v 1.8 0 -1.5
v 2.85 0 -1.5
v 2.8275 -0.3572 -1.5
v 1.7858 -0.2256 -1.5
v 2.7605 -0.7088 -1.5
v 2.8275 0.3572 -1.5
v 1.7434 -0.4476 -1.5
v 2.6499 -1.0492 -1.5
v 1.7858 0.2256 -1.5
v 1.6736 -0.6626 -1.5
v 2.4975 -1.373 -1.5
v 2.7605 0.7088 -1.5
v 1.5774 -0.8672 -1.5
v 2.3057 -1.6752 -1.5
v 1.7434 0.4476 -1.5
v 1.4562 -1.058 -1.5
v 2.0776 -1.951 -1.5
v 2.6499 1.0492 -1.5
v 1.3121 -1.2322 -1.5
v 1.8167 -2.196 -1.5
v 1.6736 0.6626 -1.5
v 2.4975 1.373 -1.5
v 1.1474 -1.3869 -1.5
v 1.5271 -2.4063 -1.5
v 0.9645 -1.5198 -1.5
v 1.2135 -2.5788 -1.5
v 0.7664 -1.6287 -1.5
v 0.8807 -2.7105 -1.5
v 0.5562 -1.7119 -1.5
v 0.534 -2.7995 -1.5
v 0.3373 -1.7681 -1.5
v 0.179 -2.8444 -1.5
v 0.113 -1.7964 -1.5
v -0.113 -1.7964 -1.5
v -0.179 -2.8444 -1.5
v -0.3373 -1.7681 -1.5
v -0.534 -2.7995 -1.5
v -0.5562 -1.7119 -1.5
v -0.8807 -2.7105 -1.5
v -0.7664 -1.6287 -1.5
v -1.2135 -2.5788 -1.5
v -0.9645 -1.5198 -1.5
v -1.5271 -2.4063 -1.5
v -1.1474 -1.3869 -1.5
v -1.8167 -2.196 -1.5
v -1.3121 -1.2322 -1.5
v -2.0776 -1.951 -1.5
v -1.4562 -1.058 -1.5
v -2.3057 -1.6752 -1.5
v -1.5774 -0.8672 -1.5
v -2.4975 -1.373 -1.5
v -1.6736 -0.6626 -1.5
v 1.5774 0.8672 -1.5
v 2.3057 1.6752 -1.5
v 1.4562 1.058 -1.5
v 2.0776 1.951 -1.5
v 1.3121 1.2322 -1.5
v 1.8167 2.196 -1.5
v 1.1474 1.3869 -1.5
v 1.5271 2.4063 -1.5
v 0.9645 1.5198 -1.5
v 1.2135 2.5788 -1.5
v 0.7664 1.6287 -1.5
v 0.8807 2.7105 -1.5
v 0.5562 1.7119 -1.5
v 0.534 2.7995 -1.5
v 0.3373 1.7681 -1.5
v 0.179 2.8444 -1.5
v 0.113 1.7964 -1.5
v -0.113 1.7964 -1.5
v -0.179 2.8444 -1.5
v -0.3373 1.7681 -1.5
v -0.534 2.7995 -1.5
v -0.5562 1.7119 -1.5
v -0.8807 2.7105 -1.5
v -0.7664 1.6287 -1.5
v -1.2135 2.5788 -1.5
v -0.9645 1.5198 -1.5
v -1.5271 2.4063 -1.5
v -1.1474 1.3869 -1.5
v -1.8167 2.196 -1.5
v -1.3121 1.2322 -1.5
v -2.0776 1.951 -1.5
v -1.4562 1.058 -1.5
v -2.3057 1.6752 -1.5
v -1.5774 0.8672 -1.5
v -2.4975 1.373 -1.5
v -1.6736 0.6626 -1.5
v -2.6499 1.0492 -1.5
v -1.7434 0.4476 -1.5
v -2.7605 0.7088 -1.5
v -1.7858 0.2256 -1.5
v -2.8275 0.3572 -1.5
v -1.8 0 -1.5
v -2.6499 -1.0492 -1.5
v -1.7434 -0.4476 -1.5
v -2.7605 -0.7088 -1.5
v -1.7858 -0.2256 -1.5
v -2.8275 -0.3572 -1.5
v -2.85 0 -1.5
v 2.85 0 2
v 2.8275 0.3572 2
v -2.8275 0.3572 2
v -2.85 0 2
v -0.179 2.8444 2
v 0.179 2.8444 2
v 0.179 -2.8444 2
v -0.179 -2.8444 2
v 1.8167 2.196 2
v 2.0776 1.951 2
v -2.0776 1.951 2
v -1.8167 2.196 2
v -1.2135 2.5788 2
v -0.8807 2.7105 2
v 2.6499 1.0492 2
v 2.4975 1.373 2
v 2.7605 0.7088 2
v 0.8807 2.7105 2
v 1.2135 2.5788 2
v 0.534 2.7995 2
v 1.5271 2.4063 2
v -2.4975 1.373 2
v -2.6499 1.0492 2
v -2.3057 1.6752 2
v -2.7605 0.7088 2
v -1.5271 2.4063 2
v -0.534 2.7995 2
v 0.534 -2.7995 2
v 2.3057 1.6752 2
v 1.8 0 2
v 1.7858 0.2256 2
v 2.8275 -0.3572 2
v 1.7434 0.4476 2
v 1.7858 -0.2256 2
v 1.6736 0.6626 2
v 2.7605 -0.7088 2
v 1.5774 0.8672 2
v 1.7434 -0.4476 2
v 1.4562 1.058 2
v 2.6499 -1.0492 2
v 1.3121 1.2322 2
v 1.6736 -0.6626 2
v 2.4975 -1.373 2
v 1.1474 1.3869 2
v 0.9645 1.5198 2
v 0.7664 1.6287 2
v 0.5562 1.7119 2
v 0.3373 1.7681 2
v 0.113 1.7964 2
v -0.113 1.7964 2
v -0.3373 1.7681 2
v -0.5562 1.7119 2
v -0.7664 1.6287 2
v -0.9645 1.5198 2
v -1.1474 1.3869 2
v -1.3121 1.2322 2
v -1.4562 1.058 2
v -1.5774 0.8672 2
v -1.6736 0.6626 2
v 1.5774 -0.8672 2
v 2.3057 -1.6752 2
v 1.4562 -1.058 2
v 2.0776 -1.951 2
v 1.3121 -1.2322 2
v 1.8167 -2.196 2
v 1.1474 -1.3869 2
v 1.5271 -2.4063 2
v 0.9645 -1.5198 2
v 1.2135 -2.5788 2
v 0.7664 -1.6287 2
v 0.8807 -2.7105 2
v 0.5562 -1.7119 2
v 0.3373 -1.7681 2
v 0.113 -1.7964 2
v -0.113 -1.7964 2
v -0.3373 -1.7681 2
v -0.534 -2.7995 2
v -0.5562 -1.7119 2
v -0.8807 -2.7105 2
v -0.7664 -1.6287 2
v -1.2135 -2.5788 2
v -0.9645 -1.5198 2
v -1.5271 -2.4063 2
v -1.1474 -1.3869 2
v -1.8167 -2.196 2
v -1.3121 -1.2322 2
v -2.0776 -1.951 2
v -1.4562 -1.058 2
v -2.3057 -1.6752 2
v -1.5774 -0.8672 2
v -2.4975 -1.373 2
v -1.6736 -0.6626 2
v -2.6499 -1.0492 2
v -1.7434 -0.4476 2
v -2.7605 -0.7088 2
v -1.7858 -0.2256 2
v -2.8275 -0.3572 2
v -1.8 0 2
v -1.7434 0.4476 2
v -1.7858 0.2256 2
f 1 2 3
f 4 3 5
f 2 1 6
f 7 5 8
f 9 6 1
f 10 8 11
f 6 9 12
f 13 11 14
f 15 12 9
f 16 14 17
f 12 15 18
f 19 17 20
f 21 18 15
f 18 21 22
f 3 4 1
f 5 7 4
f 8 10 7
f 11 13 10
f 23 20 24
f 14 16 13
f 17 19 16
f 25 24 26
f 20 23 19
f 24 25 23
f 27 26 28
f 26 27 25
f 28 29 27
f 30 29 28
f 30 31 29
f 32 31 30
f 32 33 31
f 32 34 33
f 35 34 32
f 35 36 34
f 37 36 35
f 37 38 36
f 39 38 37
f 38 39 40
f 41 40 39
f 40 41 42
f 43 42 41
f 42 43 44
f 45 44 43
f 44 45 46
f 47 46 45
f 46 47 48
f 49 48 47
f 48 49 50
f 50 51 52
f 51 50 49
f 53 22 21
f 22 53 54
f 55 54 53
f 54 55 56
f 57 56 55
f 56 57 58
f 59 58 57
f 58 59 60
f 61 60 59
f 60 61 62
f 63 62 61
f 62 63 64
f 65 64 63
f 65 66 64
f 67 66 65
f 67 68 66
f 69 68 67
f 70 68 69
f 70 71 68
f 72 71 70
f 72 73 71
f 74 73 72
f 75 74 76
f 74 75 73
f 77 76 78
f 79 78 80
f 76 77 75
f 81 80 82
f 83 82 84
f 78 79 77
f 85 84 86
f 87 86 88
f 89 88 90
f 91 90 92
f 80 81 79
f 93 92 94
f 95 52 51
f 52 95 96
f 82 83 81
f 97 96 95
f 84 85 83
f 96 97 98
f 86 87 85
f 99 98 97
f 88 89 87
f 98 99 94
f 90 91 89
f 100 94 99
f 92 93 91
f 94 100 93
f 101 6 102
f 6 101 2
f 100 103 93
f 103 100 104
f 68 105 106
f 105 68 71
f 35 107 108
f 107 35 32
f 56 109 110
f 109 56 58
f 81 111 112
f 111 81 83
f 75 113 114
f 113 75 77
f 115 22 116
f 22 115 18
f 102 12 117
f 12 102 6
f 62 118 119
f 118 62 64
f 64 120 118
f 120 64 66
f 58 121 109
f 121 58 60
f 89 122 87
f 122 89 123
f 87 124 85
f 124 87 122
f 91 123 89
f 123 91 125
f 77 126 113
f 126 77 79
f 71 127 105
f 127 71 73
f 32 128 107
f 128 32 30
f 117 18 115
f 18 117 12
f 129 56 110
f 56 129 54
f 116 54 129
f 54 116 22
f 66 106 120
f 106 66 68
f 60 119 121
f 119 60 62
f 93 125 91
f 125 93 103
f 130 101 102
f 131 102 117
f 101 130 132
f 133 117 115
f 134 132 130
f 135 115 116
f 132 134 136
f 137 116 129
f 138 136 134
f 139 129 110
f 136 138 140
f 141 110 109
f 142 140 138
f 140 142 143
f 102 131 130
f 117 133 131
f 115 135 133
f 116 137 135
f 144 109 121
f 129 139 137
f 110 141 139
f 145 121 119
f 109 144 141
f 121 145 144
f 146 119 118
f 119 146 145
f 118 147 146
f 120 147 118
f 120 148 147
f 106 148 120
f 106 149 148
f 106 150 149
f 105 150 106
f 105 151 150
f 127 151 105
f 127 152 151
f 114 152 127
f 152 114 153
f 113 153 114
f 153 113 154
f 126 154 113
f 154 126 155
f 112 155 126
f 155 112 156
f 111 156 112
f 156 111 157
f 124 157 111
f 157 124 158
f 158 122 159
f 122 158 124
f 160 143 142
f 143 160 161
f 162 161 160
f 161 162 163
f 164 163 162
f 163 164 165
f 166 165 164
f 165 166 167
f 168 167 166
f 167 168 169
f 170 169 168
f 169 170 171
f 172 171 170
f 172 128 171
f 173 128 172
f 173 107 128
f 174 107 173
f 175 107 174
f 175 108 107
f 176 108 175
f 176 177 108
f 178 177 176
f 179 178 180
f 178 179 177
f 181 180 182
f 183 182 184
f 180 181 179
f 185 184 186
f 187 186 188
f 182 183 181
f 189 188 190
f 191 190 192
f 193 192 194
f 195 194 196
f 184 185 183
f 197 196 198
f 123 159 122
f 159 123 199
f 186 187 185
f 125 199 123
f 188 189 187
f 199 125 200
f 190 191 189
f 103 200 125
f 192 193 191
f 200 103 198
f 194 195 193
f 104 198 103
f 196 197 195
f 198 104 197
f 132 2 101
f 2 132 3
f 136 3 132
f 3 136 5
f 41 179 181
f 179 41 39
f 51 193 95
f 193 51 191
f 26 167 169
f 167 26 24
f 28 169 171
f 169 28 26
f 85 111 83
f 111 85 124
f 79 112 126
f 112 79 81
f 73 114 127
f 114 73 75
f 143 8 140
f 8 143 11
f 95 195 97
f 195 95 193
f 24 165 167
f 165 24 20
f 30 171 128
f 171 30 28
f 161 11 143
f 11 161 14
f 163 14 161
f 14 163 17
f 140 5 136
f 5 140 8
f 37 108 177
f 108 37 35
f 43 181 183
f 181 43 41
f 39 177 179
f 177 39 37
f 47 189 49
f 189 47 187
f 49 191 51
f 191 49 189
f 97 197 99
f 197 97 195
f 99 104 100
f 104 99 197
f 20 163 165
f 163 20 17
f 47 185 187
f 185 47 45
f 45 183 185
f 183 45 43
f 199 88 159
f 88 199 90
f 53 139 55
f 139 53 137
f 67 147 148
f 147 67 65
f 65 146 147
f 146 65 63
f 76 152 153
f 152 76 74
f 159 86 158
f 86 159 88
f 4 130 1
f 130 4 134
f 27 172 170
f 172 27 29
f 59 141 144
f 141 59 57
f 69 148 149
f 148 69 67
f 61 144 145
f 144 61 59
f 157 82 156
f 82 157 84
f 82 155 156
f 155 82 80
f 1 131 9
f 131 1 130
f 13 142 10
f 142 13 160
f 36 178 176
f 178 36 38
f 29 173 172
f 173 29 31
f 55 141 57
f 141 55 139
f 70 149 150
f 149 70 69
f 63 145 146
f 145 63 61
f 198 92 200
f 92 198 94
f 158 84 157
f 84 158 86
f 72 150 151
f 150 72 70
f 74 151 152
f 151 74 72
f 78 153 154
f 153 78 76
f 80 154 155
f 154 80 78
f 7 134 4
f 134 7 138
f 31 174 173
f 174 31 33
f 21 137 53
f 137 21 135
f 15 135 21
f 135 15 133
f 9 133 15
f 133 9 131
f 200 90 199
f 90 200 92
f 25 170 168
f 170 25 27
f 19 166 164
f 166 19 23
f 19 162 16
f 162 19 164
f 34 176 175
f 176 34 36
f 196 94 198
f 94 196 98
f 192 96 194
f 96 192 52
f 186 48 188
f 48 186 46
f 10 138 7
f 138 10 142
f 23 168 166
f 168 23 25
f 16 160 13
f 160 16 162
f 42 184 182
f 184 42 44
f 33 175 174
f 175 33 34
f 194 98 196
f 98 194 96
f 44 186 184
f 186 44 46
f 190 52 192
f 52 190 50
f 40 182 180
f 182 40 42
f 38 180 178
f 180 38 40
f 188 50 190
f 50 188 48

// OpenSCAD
$fn = 50;


difference() {
	union() {
		translate(v = [0, 0, -1.5000000000]) {
			rotate(a = [0, 0, 0]) {
				cylinder(h = 3, r = 1.0000000000);
			}
		}
		translate(v = [0, 0, -1.5000000000]) {
			rotate(a = [0, 0, 0]) {
				cylinder(h = 3.5000000000, r = 2.8500000000);
			}
		}
	}
	union() {
		translate(v = [0, 0, -125.0000000000]) {
			rotate(a = [0, 0, 0]) {
				cylinder(h = 250, r = 1.8000000000);
			}
		}
	}
}
